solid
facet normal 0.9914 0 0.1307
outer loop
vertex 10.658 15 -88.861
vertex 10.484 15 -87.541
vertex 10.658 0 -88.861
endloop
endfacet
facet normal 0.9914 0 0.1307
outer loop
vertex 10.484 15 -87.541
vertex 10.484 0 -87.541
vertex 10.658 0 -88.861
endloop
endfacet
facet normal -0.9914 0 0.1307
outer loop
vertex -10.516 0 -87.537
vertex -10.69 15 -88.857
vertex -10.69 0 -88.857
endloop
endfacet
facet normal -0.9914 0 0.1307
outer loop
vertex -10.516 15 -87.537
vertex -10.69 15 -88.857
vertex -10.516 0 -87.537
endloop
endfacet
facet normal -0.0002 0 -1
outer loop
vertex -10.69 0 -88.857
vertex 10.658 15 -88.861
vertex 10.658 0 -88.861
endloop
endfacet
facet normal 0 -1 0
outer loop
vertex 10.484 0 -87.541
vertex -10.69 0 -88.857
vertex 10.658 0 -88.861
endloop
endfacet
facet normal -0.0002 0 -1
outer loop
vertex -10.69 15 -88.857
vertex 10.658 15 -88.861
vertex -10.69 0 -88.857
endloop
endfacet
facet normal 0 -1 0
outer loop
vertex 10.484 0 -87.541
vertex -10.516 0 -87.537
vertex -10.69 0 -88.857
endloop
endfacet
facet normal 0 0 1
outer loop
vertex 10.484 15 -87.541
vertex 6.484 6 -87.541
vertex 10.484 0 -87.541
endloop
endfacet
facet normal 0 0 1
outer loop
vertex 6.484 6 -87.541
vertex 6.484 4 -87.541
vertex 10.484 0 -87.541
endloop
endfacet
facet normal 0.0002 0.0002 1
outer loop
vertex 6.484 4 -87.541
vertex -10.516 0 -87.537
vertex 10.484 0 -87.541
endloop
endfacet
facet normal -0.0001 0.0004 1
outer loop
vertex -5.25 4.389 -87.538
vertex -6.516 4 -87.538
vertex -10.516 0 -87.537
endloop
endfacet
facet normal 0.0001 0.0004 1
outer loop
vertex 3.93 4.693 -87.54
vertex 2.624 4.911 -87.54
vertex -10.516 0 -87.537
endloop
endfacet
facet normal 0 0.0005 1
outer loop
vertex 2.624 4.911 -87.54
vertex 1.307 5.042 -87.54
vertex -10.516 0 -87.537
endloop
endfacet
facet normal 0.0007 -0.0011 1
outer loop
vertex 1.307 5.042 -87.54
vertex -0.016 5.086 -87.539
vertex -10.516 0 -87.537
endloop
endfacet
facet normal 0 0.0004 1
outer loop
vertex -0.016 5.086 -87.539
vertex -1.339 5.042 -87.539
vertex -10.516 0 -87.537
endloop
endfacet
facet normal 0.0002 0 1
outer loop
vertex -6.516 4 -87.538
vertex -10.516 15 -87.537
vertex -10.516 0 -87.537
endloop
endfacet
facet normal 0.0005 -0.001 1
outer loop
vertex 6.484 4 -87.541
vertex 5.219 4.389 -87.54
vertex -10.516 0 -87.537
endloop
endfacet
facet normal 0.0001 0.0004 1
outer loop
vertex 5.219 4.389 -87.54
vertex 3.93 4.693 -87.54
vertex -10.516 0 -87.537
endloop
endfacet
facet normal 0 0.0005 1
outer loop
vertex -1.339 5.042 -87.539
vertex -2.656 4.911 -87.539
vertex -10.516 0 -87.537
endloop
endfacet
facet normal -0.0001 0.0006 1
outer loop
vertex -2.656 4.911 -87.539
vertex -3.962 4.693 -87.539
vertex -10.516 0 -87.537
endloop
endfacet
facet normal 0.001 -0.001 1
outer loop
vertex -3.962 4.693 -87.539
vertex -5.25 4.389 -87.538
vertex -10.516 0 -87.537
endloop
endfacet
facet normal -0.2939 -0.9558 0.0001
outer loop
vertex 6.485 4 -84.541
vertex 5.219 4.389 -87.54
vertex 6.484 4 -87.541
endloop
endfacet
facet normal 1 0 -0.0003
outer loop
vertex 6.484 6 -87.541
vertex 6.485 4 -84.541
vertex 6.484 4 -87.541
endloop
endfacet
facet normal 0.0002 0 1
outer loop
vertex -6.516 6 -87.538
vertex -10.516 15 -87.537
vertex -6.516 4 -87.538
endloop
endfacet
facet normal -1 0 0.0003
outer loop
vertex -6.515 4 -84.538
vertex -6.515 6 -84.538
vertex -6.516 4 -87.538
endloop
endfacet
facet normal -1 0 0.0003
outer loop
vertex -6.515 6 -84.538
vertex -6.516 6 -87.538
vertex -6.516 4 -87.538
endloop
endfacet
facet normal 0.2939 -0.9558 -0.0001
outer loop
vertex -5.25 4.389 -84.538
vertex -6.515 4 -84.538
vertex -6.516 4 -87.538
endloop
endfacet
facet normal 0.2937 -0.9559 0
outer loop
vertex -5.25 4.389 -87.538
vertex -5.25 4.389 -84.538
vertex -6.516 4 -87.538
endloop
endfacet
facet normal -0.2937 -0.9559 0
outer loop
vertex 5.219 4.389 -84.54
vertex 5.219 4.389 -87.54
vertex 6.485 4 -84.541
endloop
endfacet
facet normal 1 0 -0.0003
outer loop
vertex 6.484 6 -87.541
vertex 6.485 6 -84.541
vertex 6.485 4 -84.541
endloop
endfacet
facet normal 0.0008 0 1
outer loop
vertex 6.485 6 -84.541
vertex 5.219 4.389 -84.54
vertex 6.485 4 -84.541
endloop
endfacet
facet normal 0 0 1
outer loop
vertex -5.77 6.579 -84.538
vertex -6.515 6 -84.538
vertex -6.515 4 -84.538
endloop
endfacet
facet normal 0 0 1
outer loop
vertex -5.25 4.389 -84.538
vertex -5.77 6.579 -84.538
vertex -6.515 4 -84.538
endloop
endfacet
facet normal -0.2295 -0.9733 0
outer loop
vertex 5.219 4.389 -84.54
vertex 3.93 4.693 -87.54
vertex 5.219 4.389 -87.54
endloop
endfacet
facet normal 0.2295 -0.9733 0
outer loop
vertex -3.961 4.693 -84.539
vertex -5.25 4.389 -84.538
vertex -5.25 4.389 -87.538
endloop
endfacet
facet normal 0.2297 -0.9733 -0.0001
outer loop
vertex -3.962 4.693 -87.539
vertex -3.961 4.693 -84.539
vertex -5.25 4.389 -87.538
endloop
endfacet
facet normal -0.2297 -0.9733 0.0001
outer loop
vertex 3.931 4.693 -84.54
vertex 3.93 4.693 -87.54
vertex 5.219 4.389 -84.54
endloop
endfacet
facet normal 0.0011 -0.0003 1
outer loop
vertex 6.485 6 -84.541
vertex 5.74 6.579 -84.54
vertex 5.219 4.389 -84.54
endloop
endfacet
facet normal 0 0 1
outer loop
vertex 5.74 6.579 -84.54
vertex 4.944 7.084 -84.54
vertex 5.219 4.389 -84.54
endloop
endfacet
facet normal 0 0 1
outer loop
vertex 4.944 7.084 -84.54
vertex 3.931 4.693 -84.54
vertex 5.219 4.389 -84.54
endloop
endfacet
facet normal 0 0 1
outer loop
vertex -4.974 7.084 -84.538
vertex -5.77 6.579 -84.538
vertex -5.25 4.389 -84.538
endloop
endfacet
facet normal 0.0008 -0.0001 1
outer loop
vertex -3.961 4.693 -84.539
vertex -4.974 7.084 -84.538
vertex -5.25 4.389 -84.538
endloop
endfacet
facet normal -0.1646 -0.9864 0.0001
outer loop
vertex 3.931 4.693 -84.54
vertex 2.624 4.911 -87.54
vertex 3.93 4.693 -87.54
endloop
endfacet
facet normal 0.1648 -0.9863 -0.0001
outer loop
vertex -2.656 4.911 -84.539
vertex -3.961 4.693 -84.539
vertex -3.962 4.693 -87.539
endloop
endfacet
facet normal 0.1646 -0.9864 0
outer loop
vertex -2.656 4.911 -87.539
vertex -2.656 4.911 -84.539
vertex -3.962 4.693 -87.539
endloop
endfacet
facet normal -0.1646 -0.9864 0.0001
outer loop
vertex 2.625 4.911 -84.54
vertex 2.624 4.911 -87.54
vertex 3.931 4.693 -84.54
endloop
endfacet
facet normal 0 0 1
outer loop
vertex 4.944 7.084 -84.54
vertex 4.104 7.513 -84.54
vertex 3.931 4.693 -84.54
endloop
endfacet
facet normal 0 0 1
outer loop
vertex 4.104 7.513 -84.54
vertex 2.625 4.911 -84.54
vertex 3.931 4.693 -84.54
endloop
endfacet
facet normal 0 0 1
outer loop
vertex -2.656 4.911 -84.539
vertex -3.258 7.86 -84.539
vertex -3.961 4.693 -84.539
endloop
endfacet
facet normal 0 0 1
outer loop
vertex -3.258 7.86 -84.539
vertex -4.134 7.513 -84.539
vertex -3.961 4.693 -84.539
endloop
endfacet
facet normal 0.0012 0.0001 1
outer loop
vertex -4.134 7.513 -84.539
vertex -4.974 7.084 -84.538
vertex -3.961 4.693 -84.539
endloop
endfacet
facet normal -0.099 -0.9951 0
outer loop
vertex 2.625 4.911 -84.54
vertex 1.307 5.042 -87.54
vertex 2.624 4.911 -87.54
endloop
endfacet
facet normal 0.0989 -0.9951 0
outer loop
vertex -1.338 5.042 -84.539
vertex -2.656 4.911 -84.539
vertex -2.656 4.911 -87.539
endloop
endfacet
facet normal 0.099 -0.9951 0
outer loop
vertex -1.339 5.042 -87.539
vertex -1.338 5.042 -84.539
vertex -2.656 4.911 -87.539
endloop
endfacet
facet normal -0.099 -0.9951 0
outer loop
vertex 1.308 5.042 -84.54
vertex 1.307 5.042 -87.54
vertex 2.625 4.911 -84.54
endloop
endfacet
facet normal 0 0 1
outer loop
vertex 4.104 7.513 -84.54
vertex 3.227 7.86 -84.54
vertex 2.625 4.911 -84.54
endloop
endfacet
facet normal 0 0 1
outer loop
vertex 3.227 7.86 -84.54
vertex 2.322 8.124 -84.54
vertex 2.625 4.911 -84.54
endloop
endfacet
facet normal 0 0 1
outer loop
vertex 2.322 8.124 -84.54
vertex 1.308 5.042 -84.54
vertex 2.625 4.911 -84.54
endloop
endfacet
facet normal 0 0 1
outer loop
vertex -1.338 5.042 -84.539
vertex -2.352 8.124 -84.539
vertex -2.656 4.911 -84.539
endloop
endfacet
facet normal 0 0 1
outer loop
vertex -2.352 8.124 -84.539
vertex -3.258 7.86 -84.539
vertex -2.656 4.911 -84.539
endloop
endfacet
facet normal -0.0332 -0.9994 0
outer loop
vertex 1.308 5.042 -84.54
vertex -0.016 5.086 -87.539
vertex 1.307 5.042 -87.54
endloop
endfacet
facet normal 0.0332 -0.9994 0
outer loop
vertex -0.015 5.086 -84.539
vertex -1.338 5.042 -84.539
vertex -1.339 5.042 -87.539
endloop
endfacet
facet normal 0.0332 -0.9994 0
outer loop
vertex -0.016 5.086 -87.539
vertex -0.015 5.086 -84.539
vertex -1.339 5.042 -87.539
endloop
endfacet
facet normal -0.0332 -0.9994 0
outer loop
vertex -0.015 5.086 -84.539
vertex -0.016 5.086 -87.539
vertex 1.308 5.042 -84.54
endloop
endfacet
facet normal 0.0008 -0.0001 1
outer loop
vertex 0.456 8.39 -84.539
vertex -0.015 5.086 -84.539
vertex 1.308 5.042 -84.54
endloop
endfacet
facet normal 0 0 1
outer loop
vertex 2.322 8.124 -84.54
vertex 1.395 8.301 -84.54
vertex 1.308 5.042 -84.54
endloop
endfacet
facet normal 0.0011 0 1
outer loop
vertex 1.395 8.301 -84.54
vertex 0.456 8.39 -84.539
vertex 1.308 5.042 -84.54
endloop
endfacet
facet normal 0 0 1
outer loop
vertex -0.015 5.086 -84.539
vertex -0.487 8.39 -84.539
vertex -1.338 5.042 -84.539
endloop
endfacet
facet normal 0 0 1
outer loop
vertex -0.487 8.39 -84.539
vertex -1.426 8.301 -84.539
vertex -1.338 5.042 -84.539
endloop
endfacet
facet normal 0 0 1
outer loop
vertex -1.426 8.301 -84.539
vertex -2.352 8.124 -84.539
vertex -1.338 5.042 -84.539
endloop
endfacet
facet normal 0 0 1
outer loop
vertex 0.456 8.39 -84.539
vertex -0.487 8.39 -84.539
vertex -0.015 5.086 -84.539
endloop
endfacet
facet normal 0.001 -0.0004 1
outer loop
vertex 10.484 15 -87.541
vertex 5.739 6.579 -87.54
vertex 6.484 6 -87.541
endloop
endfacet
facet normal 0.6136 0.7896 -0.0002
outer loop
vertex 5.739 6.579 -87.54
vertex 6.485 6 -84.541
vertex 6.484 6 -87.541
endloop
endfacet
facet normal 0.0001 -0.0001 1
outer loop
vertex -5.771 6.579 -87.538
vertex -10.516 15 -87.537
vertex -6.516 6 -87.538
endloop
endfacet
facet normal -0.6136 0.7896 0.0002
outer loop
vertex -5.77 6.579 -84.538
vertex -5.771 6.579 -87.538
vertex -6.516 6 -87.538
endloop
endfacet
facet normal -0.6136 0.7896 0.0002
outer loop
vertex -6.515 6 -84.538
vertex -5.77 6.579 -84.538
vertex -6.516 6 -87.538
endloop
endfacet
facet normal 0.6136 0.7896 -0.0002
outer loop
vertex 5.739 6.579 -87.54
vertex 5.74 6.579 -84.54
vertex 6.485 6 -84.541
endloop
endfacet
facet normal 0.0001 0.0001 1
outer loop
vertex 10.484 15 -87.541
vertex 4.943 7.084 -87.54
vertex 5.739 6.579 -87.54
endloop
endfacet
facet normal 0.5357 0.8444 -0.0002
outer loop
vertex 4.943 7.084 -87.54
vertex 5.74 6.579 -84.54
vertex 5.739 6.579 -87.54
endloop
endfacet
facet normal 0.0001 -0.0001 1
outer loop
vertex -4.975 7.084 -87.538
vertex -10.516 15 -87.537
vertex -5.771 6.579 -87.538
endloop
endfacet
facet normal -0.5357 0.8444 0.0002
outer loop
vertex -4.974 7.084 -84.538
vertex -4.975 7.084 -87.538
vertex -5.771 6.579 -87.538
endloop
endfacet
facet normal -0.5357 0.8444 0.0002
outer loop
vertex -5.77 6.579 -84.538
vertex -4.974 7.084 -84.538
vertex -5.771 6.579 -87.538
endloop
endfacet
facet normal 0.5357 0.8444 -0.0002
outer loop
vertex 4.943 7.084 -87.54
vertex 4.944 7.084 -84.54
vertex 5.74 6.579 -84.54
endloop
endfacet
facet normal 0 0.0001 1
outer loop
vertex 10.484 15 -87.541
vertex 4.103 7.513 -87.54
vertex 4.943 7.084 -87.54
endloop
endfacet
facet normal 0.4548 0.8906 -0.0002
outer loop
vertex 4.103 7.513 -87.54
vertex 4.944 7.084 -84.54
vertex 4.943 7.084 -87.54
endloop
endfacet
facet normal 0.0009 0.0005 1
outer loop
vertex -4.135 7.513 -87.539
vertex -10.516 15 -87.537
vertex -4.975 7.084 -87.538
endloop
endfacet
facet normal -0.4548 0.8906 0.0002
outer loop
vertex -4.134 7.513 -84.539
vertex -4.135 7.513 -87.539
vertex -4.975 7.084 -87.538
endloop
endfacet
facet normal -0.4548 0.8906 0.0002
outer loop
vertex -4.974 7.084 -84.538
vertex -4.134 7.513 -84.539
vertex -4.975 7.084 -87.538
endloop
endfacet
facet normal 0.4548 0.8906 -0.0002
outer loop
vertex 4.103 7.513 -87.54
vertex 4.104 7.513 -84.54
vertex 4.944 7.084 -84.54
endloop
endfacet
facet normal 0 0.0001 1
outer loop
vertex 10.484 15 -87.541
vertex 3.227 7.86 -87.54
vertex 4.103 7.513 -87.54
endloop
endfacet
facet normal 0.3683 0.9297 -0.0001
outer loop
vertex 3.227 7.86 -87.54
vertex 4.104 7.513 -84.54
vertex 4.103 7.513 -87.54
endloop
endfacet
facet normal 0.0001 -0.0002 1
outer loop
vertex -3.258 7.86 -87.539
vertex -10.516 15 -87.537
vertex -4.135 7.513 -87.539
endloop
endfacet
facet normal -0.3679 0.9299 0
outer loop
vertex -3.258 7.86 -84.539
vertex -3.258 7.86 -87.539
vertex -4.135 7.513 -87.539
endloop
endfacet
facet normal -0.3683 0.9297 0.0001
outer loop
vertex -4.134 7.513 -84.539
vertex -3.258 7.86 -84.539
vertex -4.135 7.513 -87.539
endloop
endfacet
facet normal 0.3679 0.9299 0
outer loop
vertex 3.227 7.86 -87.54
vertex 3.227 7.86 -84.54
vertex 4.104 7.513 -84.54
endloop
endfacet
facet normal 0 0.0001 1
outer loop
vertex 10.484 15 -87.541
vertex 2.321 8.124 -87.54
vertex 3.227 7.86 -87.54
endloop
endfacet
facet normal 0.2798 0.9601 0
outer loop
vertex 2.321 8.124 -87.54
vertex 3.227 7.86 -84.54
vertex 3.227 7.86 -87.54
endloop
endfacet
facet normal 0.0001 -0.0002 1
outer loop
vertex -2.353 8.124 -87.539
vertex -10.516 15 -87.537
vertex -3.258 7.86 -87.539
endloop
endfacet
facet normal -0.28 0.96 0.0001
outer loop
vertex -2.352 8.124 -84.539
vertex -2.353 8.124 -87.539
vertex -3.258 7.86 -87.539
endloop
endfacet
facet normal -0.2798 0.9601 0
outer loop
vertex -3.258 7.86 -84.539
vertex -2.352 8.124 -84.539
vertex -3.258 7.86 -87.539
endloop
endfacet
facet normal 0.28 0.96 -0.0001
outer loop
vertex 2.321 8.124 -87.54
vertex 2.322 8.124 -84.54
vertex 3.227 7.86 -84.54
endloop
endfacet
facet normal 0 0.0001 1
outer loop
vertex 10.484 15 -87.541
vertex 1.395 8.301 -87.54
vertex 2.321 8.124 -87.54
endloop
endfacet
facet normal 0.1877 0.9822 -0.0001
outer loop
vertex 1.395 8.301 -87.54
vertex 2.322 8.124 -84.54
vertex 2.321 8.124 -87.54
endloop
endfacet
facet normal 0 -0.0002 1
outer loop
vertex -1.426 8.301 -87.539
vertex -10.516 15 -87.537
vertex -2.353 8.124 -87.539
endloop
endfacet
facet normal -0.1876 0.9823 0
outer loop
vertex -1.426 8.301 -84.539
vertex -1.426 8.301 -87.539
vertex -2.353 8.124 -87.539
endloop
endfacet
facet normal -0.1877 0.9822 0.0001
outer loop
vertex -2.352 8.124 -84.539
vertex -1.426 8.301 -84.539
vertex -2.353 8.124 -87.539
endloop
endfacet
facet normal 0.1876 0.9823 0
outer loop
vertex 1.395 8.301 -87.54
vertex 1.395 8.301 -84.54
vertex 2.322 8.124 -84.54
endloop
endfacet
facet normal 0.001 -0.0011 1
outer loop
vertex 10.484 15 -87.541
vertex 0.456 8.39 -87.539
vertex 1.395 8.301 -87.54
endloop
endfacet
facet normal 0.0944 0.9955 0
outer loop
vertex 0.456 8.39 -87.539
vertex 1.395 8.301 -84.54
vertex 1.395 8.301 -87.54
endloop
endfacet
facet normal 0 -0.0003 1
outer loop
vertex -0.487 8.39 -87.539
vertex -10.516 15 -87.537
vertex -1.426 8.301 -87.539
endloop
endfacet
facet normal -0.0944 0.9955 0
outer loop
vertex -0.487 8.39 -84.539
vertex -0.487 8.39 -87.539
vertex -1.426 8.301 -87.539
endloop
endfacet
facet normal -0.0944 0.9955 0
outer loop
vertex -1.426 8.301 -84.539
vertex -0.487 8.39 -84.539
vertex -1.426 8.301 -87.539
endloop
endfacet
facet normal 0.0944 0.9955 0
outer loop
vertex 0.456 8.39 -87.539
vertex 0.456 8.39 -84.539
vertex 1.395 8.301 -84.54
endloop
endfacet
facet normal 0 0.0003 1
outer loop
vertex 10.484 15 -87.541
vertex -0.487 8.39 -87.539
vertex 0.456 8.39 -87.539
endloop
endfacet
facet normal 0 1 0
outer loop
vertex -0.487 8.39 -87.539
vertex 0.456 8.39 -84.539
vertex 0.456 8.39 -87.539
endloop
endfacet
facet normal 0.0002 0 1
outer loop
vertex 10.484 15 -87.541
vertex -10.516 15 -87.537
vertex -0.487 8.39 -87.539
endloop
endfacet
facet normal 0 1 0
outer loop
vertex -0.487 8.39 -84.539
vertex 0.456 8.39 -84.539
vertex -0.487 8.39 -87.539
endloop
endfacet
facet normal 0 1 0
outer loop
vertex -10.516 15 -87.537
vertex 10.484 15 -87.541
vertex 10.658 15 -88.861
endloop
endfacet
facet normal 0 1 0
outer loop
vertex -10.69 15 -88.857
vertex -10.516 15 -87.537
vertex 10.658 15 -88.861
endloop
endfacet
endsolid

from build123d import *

# Parameters (mm, degrees)
RESSALTO_EXTRUS_O1_DEPTH = 15
RESSALTO_EXTRUS_O2_DEPTH = 3


with BuildPart() as part:
    # Esboço1 → Ressalto-extrusão1 (new body)
    with BuildSketch(Plane(origin=(0, 0, 0), x_dir=(1, 0, 0), z_dir=(0, 1, 0))):
        Polygon((10.484125197, 87.541408798), (10.657910977, 88.861442851), (-10.689651623, 88.857262857), (-10.515874803, 87.537296858), align=None)
    extrude(amount=RESSALTO_EXTRUS_O1_DEPTH)

    # Esboço2 → Ressalto-extrusão2 (add)
    with BuildSketch(Plane(origin=(-0.017140787, 0, -87.53935258), x_dir=(0.999999981, 0, -0.000195807), z_dir=(0.000195807, 0, 0.999999981))):
        with BuildLine():
            Line((-6.498734217, 6), (-6.498734217, 4))
            ThreePointArc((-6.498734217, 4), (0.001265984, 5.08571975), (6.501266185, 4))
            Line((6.501266185, 4), (6.501266185, 6))
            ThreePointArc((6.501266185, 6), (0.001265984, 8.400658095), (-6.498734217, 6))
        make_face()
    extrude(amount=RESSALTO_EXTRUS_O2_DEPTH)


solid = part.part
